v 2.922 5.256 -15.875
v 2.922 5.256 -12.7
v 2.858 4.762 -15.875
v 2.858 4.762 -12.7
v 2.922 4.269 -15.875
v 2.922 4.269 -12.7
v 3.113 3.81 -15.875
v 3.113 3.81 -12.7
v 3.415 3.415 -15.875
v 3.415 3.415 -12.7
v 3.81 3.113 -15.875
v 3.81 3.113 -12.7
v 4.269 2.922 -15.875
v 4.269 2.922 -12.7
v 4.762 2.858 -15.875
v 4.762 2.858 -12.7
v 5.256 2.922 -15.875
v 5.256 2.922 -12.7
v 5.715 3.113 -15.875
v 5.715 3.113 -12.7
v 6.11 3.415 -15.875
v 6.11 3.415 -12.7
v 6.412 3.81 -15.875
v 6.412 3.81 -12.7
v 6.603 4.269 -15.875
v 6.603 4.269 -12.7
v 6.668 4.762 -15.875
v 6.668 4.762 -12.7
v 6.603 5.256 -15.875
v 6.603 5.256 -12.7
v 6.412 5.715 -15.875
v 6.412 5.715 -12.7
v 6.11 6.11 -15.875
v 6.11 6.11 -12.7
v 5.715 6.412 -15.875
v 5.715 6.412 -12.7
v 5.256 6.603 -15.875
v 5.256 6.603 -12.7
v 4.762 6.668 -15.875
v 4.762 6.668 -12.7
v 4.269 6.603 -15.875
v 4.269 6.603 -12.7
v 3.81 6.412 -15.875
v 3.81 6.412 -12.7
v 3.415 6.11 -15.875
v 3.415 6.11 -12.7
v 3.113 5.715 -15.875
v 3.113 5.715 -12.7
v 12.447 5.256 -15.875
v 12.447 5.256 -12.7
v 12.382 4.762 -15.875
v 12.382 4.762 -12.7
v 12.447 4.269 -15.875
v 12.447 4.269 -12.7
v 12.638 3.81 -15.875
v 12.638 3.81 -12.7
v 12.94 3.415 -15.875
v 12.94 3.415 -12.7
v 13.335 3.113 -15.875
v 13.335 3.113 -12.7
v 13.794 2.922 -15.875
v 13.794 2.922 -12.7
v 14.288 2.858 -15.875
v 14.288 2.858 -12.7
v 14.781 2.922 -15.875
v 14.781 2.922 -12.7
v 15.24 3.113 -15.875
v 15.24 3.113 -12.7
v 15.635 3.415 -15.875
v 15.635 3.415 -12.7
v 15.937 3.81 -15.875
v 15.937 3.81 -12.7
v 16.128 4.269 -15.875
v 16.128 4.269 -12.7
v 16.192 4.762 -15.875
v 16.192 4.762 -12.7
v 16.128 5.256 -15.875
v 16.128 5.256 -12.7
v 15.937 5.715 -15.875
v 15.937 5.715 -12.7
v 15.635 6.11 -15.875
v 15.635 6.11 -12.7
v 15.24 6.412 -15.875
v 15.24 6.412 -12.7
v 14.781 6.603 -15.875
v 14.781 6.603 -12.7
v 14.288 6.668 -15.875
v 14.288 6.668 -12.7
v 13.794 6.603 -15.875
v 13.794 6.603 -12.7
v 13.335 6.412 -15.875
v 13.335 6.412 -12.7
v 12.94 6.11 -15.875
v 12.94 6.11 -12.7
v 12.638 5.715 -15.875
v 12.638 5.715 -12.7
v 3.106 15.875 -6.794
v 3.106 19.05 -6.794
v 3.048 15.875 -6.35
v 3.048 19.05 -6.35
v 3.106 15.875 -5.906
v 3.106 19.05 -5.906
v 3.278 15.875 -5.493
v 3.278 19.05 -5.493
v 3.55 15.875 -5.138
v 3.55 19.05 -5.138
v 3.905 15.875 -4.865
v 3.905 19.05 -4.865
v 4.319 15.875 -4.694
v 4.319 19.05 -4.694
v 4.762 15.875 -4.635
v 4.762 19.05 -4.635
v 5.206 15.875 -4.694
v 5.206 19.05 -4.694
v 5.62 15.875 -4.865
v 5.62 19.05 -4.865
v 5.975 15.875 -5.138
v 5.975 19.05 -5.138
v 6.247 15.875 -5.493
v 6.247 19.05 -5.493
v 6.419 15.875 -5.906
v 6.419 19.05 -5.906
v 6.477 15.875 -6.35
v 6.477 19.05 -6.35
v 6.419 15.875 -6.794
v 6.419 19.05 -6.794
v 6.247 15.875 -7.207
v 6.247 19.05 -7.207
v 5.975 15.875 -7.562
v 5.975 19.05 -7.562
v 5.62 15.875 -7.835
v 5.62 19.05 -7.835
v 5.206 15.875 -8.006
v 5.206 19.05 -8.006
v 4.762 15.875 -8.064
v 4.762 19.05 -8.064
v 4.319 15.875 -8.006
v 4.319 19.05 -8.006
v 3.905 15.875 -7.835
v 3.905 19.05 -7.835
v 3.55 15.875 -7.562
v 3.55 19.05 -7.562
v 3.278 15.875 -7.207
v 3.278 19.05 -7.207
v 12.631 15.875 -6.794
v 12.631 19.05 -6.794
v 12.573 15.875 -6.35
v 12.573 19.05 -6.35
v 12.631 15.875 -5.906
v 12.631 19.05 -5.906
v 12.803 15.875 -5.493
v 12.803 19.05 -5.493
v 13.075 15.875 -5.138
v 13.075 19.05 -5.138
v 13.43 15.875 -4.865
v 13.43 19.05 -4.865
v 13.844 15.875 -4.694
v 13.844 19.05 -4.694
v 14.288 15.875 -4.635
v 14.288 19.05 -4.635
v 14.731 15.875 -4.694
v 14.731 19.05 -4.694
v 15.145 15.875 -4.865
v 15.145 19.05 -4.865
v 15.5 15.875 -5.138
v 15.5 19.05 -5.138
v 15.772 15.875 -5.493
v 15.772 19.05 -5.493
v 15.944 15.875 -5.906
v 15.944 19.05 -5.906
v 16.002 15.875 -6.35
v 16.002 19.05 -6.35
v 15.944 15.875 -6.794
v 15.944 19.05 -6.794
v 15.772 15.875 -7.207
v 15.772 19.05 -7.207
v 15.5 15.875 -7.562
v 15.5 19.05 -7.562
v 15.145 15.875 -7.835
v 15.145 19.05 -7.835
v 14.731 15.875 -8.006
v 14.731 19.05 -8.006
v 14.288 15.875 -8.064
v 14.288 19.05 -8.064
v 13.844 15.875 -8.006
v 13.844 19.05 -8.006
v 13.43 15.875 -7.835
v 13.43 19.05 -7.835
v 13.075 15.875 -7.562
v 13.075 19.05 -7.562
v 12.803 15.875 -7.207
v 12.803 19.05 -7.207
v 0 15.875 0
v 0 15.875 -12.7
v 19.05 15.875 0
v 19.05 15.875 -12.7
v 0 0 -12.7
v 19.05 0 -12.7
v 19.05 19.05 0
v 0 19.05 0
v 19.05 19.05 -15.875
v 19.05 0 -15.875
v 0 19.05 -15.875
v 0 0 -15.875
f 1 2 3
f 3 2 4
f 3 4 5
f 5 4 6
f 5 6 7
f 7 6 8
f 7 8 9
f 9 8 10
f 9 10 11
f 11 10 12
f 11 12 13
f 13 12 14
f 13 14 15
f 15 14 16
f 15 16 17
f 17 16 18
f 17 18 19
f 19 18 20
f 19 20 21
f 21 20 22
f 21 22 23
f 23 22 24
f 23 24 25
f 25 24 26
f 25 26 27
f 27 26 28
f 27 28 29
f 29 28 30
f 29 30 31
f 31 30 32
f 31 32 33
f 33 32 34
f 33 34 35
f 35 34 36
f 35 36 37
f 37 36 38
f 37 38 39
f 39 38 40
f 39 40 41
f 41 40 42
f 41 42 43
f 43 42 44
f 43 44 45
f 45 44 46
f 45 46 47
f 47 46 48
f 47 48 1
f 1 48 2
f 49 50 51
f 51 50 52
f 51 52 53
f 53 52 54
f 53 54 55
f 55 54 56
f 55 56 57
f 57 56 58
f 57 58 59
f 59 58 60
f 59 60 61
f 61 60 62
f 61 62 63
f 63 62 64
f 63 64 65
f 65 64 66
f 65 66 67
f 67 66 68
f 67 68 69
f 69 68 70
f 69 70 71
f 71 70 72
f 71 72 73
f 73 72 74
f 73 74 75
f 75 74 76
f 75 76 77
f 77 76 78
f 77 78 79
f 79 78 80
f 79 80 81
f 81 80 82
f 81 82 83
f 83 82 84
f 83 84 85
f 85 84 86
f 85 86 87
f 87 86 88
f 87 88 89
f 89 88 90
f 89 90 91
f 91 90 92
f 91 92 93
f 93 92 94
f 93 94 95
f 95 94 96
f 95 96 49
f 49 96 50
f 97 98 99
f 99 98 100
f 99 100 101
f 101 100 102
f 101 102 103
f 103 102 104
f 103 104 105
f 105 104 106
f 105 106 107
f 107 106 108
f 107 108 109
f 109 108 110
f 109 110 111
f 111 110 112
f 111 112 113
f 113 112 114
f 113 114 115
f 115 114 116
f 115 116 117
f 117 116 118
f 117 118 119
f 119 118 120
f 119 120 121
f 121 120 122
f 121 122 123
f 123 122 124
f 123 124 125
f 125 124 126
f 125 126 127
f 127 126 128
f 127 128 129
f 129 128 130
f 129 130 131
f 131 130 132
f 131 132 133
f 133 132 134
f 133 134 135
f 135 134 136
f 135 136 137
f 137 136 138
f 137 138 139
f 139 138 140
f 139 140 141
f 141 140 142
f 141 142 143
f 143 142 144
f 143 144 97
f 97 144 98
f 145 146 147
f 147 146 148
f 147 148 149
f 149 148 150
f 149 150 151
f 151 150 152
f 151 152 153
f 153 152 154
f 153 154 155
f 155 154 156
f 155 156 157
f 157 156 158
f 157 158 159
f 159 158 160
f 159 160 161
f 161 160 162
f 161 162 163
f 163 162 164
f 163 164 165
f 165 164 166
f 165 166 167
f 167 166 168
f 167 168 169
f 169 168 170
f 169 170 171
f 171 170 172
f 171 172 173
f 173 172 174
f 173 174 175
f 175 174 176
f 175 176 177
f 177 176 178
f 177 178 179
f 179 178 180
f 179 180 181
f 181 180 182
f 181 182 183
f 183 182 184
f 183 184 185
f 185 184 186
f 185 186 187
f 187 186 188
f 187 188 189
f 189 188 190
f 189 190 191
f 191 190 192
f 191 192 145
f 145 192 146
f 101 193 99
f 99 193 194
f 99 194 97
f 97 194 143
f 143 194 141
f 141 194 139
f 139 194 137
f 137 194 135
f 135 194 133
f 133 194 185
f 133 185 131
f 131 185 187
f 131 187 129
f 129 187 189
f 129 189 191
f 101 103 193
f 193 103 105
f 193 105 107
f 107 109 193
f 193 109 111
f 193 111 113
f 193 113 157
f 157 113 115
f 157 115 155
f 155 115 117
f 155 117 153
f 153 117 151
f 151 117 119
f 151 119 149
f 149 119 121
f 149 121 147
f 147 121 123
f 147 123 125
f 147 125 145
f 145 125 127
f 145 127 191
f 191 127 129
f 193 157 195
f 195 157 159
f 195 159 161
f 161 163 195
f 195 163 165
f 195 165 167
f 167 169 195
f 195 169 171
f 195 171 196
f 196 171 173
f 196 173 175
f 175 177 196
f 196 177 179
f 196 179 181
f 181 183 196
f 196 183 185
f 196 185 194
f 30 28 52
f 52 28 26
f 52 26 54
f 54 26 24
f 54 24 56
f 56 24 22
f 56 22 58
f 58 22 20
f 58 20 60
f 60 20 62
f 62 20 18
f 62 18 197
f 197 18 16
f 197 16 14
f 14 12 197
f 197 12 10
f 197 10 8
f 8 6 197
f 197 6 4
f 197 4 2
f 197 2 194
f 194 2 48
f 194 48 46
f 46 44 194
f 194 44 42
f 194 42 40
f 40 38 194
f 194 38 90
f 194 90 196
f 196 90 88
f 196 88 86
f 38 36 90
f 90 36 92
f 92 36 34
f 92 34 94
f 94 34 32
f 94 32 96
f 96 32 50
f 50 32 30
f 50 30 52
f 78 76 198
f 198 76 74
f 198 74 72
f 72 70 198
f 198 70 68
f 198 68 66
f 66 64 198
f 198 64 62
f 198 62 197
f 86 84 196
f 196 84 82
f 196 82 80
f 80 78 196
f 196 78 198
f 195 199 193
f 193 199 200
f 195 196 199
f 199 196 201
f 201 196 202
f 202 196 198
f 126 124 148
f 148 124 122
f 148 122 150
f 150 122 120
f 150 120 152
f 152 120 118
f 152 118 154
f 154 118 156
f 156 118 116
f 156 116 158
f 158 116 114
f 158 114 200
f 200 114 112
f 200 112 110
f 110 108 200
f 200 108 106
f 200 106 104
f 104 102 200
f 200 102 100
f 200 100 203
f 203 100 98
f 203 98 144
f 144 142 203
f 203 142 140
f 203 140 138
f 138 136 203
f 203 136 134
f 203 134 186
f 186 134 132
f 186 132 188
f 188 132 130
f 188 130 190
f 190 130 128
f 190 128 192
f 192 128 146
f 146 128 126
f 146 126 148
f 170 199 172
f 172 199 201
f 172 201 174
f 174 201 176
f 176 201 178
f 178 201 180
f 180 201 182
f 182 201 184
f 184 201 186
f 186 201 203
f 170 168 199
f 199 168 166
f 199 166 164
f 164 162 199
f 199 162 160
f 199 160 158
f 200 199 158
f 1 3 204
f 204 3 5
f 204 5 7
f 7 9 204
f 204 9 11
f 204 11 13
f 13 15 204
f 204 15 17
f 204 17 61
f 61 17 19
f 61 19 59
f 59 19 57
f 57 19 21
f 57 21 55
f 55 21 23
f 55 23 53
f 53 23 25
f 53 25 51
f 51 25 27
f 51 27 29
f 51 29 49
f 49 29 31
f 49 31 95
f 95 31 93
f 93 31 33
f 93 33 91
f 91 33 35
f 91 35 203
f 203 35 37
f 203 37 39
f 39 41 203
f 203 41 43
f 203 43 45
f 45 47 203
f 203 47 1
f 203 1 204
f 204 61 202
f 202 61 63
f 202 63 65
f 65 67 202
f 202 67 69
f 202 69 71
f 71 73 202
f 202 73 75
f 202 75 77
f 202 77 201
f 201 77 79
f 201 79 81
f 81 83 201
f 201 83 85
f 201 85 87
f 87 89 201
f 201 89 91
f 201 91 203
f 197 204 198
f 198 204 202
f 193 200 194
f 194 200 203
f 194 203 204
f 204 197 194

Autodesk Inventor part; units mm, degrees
ref_plane "YZ Plane" through (0, 0, 0) normal (1, 0, 0) x (0, 1, 0)
ref_plane "XZ Plane" through (0, 0, 0) normal (0, 1, 0) x (-1, 0, 0)
ref_plane "XY Plane" through (0, 0, 0) normal (0, 0, 1) x (1, 0, 0)
sketch "Sketch1" plane through (0, 0, 0) normal (1, 0, 0) x (0, 1, 0)
  line L0 (0, 0) -> (19.05, 0)
  line L1 (19.05, 0) -> (19.05, -15.875)
  line L2 (19.05, -15.875) -> (0, -15.875)
  line L3 (0, -15.875) -> (0, 0)
  line L4 (0, 0) -> (15.875, 0)
  line L5 (15.875, 0) -> (15.875, -12.7)
  line L6 (15.875, -12.7) -> (0, -12.7)
  line L7 (0, -12.7) -> (0, 0)
  dimension "d0" = 19.05
  dimension "d1" = 15.875
  dimension "d2" = 15.875
  dimension "d3" = 12.7
extrude "Extrusion1" add sketch "Sketch1" along normal blind 19.05 contours L0 L1 L2 L3 L6 L5
sketch "Sketch2" plane through (0, 19.05, 0) normal (0, 1, 0) x (1, 0, 0)
  line L0 (0, 15.875) -> (0, 0) projected
  line L1 (0, 0) -> (19.05, 0) projected
  line L2 (19.05, 15.875) -> (19.05, 0) projected
  line L3 (0, 15.875) -> (19.05, 15.875) projected
  point P0 (0, 0)
  point P1 (4.7625, 6.35)
  point P2 (14.2875, 6.35)
  dimension "d6" = 9.525
  dimension "d7" = 4.7625
  dimension "d8" = 15.875
  dimension "d18" = 9.525
  dimension "d19" = 9.525
  dimension "d31" = 19.05
hole "Hole1" at (4.7625, 19.05, -6.35) at (14.2875, 19.05, -6.35) direction (0, -1, 0) diameter 3.429 end through all
sketch "Sketch3" plane through (0, 0, -12.7) normal (0, 0, 1) x (1, 0, 0)
  line L0 (0, 0) -> (0, 15.875) projected
  line L1 (19.05, 0) -> (0, 0) projected
  line L2 (19.05, 15.875) -> (19.05, 0) projected
  line L3 (0, 15.875) -> (19.05, 15.875) projected
  point P0 (0, 0)
  point P1 (4.7625, 4.7625)
  point P2 (14.2875, 4.7625)
  dimension "d20" = 9.525
  dimension "d21" = 4.7625
  dimension "d22" = 4.7625
  dimension "d23" = 4.7625
  dimension "d32" = 19.05
hole "Hole2" at (4.7625, 4.7625, -12.7) at (14.2875, 4.7625, -12.7) direction (0, 0, -1) diameter 3.81 end through all
equation "\"d7\" = -0.5 * d6 + 0.5 * d31"
equation "\"d21\" = -0.5 * d20 + 0.5 * d32"
equation "\"d23\" = d22"
properties part number "TensionerPlate3" material "ABS Plastic"
